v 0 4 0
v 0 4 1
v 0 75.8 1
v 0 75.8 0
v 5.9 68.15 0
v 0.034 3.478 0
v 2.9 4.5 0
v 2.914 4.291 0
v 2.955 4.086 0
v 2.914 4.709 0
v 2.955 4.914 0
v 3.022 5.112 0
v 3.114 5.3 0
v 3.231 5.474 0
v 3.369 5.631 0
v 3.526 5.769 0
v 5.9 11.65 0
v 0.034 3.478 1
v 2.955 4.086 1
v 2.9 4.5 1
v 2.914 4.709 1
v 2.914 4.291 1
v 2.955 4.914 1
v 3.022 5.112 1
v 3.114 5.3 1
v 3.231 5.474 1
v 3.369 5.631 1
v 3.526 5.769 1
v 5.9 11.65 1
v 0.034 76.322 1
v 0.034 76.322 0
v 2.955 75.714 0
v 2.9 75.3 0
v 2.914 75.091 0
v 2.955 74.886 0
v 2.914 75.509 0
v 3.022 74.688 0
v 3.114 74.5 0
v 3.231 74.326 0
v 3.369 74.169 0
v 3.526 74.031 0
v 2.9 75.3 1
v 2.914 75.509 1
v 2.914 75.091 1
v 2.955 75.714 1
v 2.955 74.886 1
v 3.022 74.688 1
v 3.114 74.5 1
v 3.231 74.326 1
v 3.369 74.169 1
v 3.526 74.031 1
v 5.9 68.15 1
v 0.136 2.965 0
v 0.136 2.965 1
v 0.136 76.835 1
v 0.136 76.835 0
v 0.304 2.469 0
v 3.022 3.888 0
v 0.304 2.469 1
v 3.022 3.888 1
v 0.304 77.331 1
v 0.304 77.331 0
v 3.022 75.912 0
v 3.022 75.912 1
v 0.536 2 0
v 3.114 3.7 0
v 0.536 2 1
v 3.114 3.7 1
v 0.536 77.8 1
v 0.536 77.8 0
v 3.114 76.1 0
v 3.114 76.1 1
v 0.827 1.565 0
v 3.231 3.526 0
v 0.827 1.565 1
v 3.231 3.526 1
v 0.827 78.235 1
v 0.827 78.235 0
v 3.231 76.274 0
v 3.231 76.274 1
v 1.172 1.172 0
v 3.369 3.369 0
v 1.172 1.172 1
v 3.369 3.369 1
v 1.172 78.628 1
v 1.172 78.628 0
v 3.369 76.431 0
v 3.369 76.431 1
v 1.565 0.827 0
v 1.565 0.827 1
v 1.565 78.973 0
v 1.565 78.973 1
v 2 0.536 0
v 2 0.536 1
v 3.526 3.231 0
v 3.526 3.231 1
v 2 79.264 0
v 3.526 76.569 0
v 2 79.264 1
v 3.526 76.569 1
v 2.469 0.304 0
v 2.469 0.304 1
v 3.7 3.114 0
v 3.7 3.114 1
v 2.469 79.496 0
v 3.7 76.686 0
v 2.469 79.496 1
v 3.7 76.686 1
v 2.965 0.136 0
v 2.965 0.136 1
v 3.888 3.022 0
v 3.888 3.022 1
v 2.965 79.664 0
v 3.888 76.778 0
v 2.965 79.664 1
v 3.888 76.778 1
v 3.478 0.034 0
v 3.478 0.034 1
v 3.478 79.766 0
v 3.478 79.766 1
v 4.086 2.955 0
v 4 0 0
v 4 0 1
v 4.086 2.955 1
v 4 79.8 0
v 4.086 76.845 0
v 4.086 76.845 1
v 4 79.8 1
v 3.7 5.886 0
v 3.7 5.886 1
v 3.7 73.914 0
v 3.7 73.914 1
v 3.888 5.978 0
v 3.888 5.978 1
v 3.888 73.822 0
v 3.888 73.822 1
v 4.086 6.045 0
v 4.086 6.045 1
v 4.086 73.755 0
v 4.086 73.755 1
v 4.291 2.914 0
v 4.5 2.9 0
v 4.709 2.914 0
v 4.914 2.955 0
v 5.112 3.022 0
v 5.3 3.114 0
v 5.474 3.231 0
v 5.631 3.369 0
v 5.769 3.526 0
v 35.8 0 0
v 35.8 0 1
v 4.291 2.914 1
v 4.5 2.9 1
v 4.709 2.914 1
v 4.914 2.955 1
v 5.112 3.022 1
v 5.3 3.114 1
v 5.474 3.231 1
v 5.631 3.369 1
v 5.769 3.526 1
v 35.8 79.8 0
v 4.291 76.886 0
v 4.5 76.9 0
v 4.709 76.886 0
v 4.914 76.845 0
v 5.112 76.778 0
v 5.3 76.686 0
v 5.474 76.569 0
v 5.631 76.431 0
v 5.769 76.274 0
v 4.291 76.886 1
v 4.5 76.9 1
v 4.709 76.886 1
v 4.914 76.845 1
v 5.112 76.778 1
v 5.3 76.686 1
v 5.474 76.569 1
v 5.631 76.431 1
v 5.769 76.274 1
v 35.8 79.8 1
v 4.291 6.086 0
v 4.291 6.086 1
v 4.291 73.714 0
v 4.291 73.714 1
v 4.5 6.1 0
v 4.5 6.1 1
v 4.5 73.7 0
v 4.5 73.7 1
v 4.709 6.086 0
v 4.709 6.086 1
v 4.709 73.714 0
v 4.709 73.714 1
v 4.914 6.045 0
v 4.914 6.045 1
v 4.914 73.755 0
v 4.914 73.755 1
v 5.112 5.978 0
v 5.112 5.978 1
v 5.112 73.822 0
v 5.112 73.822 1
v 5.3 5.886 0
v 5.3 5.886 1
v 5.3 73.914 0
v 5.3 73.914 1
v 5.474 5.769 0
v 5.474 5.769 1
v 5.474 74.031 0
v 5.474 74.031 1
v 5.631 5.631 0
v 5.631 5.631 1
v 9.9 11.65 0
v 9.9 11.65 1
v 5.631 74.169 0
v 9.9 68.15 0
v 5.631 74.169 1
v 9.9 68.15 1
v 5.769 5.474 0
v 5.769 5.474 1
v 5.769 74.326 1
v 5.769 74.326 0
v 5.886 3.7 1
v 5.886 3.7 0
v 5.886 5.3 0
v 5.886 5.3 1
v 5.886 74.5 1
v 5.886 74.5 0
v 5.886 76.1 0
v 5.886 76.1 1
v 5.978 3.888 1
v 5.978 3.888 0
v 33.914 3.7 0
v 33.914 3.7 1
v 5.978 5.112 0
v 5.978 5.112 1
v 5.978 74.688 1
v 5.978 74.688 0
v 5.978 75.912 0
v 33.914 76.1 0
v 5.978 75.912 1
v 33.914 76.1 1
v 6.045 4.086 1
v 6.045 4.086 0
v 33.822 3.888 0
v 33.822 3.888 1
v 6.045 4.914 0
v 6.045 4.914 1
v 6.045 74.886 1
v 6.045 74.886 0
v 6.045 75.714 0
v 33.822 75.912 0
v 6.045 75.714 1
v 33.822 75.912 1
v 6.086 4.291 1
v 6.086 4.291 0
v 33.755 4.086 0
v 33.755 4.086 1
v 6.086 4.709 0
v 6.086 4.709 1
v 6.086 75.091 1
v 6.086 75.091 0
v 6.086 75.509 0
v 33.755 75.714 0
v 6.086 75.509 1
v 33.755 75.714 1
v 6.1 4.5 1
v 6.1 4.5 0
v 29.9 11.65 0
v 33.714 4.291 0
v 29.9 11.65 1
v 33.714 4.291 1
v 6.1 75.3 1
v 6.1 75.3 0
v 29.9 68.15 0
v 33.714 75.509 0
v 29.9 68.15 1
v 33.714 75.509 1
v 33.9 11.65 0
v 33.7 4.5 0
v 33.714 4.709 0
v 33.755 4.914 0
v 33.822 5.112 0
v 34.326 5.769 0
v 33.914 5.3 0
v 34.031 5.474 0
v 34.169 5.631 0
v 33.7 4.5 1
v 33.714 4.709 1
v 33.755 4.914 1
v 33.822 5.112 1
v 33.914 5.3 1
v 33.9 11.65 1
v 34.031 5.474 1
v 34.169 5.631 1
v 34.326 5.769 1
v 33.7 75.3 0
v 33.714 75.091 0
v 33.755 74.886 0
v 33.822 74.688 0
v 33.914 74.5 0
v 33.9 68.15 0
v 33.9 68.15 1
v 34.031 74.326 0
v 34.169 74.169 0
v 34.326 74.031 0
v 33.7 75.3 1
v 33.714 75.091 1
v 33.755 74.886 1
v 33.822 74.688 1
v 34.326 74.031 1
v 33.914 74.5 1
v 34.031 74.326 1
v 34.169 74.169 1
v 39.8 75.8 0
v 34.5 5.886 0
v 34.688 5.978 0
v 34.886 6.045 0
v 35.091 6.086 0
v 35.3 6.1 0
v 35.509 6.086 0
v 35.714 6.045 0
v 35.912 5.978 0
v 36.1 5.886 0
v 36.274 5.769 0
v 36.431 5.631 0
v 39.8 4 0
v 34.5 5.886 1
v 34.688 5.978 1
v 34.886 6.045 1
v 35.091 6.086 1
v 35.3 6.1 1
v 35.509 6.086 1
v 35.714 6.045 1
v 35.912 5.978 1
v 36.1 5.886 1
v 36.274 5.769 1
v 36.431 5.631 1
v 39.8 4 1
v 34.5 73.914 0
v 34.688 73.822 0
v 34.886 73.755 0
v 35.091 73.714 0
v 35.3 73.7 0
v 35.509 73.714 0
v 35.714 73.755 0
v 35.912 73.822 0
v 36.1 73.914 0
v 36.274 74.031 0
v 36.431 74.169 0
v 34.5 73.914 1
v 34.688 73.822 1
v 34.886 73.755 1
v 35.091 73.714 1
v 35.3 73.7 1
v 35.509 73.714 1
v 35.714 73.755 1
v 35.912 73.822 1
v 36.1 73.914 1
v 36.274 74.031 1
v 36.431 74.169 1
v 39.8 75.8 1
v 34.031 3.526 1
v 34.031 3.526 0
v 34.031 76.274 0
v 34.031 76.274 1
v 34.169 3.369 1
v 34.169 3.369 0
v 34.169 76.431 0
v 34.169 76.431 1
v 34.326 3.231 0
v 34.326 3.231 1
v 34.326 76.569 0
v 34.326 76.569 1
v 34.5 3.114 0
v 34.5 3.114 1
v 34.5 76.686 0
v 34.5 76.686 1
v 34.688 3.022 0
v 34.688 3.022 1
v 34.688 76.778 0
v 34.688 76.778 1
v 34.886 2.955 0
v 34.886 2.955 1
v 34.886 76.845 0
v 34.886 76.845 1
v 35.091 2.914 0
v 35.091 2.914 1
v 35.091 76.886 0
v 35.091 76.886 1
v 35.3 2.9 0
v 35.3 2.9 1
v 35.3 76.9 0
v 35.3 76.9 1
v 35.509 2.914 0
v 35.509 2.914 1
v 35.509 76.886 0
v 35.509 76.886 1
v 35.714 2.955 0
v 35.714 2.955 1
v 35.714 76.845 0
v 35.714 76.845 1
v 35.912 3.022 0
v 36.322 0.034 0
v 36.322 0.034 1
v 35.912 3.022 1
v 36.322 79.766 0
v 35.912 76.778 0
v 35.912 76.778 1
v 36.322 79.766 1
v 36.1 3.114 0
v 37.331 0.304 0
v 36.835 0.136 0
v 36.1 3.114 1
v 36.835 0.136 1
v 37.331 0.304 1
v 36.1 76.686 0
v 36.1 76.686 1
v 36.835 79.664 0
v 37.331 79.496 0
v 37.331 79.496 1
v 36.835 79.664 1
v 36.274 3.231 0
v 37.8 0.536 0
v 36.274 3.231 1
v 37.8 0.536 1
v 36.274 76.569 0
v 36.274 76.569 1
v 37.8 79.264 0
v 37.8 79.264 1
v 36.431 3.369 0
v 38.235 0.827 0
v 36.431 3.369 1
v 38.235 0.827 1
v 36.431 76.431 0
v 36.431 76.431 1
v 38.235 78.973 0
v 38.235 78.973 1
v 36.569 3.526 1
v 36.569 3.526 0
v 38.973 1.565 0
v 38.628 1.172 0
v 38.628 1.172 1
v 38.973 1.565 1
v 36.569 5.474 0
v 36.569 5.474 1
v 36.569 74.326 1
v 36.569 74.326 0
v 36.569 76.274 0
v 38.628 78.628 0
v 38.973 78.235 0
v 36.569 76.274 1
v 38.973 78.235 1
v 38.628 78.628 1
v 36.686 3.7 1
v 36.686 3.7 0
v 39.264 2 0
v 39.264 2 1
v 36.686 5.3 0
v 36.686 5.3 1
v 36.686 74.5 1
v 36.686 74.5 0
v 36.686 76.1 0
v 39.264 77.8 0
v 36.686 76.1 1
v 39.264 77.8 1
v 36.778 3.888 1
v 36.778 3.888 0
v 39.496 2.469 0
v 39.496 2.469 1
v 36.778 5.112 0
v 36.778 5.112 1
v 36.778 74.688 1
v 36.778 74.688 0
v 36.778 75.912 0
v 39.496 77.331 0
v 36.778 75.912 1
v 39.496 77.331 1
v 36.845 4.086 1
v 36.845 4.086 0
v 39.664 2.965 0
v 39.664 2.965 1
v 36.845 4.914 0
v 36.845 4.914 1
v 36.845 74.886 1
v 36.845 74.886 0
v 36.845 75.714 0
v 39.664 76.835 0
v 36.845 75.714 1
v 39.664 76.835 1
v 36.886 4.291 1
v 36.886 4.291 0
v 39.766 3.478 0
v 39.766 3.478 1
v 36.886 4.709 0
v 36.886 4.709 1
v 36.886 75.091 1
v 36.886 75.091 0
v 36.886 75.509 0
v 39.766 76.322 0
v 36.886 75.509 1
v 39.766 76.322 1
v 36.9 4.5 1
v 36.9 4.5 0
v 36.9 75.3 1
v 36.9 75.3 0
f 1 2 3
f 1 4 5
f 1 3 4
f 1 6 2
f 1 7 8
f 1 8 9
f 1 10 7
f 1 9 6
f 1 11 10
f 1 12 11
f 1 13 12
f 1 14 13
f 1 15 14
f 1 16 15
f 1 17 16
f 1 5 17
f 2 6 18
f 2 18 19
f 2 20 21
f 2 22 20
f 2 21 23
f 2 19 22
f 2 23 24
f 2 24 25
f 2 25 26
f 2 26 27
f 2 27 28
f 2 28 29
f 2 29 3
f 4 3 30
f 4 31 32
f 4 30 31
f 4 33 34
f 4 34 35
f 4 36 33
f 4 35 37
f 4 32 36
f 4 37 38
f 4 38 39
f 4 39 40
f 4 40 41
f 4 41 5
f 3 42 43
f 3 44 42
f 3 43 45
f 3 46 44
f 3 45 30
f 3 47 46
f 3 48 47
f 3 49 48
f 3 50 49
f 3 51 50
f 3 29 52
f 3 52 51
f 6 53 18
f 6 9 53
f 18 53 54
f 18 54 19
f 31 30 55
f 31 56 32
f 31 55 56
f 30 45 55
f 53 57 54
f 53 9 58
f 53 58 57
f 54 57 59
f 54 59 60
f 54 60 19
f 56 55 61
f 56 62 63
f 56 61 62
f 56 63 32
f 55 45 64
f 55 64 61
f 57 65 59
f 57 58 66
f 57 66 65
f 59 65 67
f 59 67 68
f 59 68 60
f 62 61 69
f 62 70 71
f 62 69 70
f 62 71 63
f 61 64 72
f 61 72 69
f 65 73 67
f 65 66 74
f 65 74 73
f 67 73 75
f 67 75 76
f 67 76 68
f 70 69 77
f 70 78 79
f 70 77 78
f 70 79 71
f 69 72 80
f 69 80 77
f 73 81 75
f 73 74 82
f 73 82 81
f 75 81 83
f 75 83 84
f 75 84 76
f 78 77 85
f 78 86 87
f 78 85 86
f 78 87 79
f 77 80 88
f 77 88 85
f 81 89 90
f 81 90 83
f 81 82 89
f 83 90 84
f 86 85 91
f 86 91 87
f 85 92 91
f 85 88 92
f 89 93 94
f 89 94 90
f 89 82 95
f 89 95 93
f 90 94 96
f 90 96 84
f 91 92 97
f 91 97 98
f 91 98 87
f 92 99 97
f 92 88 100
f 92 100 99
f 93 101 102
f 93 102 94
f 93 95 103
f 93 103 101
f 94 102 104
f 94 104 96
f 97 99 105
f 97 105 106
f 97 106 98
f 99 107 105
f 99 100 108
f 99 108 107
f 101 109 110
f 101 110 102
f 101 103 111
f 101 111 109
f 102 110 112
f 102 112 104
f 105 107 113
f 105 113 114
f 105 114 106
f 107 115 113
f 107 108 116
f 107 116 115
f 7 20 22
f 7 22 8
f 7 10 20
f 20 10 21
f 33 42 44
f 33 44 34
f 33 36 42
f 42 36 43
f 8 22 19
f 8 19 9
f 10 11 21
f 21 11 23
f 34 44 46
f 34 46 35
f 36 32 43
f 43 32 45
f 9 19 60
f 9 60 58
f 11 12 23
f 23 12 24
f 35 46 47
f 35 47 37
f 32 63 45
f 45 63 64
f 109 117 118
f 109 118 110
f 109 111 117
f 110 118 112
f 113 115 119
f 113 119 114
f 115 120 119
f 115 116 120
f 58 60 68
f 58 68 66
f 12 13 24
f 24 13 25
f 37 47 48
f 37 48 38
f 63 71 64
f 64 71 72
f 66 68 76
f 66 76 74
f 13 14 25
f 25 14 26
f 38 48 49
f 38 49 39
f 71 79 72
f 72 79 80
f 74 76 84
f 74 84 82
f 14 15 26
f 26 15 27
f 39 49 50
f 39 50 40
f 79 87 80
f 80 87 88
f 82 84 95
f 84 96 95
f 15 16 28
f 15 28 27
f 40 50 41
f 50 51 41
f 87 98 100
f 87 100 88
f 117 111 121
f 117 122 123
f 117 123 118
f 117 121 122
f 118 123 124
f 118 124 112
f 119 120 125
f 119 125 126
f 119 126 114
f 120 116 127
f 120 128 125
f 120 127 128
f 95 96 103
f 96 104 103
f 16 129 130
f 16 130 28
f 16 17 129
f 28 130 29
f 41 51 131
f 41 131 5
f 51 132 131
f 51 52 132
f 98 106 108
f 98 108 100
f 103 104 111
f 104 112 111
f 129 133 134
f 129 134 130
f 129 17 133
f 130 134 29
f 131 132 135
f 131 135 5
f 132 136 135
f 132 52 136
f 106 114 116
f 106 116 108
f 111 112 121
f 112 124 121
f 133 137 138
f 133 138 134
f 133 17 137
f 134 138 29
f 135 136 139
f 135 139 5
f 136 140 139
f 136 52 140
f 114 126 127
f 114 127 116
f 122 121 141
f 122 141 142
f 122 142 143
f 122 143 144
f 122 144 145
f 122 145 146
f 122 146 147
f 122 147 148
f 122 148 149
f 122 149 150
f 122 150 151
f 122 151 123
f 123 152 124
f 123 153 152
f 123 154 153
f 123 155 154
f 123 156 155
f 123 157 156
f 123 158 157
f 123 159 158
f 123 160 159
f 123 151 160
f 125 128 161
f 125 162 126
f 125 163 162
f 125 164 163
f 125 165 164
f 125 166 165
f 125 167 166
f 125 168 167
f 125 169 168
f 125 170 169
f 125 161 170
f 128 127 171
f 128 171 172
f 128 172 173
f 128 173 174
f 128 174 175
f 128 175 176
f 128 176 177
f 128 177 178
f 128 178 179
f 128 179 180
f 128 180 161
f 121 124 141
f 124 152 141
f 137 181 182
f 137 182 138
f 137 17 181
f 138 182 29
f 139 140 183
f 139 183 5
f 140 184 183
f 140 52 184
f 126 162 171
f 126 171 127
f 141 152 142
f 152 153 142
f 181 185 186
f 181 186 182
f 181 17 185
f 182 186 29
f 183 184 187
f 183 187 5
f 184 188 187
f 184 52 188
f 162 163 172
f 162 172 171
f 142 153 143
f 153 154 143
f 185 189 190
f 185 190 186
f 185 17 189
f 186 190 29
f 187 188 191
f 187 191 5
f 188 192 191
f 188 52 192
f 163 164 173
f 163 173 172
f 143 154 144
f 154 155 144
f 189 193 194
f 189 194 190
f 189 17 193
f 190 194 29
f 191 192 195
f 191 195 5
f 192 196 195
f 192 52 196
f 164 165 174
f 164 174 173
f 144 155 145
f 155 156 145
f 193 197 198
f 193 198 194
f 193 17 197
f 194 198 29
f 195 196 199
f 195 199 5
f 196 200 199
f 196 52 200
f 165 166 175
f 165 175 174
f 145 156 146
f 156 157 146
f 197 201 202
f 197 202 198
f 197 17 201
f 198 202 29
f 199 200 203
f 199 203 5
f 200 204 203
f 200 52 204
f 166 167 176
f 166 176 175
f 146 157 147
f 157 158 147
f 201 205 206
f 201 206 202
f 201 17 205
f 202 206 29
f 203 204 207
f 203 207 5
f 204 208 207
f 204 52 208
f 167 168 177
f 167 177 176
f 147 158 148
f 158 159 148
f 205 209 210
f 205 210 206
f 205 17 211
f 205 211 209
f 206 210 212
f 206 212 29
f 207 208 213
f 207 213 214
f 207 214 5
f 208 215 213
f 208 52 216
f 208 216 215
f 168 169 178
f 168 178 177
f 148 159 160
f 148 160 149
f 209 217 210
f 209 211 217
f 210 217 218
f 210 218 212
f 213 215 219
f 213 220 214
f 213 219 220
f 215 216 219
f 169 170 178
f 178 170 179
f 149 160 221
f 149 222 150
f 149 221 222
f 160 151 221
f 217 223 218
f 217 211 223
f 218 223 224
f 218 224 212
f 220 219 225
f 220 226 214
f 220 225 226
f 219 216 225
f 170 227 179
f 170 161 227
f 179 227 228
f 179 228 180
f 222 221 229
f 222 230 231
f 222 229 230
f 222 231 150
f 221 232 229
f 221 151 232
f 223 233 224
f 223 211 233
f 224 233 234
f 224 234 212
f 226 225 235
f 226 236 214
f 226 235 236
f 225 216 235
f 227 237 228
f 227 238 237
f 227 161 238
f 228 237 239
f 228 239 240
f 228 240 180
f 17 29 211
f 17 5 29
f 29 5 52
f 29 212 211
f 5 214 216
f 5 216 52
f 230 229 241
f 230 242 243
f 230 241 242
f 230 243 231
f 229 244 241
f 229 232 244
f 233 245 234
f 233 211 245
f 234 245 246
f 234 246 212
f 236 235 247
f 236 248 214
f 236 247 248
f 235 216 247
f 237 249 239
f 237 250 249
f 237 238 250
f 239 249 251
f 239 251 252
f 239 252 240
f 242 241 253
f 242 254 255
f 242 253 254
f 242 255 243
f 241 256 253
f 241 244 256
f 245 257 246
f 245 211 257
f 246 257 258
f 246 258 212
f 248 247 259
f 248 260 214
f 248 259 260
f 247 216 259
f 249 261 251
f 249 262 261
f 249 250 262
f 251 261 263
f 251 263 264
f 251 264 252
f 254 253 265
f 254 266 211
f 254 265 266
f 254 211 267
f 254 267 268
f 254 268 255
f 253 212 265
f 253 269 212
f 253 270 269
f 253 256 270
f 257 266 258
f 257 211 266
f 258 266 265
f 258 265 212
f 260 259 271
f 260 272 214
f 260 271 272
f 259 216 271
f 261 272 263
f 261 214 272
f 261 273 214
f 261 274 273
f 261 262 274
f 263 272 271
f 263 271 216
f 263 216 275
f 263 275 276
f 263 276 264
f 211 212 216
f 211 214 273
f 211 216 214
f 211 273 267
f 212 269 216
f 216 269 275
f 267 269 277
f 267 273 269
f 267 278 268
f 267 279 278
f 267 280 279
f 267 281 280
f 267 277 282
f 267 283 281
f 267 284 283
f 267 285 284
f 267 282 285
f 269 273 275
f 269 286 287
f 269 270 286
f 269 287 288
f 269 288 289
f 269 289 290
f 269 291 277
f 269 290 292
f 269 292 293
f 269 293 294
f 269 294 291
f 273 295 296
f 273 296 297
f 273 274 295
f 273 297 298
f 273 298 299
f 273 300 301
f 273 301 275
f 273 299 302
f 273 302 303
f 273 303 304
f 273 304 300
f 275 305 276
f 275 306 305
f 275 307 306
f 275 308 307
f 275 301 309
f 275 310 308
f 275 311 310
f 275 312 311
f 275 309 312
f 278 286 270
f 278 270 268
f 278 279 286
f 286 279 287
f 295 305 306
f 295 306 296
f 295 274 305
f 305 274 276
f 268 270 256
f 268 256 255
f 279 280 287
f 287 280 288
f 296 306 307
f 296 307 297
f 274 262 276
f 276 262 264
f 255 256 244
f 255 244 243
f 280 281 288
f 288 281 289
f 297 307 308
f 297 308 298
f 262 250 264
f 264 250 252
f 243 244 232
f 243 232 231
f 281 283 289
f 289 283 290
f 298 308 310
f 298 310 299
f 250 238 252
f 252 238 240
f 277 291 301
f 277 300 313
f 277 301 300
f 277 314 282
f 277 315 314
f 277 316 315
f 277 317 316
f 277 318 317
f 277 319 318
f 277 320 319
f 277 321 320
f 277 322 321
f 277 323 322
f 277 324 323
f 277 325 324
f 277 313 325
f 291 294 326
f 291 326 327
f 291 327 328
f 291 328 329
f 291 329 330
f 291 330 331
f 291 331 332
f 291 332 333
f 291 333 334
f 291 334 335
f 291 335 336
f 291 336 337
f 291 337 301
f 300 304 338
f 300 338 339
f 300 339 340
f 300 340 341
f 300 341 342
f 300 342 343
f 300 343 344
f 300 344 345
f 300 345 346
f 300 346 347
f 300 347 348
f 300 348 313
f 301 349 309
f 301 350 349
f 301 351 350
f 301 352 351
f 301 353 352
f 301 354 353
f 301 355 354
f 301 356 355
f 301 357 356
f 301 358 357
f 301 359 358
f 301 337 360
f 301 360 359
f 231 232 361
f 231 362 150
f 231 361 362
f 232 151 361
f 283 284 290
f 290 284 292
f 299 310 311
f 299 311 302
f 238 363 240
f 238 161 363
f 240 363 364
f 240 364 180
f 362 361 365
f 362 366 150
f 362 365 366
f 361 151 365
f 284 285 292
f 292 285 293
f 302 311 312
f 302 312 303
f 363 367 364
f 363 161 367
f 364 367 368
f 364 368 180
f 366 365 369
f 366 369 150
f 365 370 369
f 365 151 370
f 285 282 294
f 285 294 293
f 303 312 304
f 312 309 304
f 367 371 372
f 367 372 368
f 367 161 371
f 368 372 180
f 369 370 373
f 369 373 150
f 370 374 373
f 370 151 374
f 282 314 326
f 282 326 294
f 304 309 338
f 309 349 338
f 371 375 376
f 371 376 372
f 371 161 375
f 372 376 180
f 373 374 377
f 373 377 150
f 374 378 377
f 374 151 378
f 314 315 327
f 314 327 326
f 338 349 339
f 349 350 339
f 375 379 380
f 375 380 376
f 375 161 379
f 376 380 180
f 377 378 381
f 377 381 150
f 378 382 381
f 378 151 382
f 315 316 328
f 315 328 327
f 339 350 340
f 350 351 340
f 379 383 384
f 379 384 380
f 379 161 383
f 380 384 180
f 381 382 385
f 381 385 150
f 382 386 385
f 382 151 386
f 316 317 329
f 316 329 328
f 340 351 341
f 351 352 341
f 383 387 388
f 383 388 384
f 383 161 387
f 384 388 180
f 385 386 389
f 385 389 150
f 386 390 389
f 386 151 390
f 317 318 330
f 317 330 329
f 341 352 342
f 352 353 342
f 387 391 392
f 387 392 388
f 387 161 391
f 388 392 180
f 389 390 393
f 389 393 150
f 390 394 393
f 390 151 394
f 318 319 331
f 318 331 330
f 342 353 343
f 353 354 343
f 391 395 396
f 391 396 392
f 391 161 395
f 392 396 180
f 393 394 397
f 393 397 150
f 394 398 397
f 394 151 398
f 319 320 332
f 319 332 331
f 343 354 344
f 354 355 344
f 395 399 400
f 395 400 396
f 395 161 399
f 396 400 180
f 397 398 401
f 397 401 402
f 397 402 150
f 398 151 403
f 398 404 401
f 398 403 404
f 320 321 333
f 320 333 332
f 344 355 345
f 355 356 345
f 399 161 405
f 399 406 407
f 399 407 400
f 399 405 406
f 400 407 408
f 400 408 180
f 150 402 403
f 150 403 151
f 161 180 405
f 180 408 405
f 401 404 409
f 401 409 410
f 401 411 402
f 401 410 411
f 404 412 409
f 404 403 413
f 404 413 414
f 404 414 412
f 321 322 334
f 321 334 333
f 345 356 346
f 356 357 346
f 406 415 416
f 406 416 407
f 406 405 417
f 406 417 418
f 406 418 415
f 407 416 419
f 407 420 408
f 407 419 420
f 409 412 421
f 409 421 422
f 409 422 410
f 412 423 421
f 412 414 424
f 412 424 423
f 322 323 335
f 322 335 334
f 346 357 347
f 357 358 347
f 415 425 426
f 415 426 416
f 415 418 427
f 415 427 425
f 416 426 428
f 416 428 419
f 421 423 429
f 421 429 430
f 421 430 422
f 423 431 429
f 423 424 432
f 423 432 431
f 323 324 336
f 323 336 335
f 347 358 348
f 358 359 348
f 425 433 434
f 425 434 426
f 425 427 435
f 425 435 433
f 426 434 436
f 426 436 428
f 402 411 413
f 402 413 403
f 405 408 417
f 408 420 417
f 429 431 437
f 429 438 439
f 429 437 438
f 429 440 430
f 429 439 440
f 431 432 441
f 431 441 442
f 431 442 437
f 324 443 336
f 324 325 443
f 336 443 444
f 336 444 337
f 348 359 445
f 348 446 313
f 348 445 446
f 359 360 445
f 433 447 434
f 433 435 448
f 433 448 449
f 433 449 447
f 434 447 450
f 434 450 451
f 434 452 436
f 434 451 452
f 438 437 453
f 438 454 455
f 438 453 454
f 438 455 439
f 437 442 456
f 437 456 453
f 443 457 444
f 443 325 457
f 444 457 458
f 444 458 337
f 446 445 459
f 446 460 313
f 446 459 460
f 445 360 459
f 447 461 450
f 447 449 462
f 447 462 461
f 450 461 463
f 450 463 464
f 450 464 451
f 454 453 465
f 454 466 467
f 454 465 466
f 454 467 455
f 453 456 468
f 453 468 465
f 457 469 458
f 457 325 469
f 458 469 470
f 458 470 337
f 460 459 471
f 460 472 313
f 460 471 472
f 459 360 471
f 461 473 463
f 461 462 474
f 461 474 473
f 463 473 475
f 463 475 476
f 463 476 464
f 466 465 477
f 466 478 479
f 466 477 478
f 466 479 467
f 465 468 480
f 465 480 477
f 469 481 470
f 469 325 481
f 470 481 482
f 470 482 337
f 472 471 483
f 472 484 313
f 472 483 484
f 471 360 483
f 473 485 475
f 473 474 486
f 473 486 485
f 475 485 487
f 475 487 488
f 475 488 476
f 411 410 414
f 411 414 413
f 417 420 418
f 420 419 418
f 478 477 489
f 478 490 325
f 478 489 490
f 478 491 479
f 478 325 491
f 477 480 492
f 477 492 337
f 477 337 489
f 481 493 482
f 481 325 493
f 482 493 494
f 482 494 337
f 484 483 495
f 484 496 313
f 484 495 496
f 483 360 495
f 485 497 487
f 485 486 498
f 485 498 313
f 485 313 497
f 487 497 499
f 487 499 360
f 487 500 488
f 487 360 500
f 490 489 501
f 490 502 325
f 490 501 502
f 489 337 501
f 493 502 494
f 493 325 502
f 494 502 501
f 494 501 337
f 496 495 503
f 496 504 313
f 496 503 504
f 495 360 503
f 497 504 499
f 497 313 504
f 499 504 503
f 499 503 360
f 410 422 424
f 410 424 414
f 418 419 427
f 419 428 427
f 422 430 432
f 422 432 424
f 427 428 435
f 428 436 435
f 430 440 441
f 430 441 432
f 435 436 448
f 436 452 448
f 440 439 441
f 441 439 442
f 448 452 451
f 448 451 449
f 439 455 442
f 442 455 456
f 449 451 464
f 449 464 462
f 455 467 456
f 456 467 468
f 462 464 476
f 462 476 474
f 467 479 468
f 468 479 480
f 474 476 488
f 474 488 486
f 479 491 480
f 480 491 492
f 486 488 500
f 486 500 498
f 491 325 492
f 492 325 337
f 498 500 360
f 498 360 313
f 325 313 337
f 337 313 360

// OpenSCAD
// Dilder Case Separator Sheet (outer) — thin divider matching base outer footprint
//
// Same as the inner separator but sized to the full outer enclosure dimensions
// with the base's 4mm corner radius. Two long rectangular slots and screw holes.
//
// Export:
//   openscad -o case-separator-outer.3mf case-separator-outer.scad

$fn = 48;

// ---- Board (Olimex ESP32-S3-DevKit-Lipo) ----
board_len      = 56;
board_wid      = 28;
antenna_proj   = 6;
header_gap     = 22;
header_slot_len = 56.5;
header_slot_wid = 4;

// ---- Waveshare 2.13" display ----
disp_len       = 65;
disp_wid       = 30;

// ---- 1000 mAh battery ----
bat_len        = 52;
bat_wid        = 35;

// ---- Enclosure geometry ----
wall_thk       = 2;
plate_thk      = 1;        // thin separator sheet
pillar         = 5;
slop           = 0.4;

screw_clr      = 3.2;

// ---- Rounding ----
case_corner_r  = 4;        // matches base outer corners

// ---- XY layout ----
inner_wid      = max(board_wid, disp_wid, bat_wid) + 2 * slop;
inner_len      = max(board_len + antenna_proj, disp_len + 2 * pillar, bat_len) + 2 * slop;
outer_wid      = inner_wid + 2 * wall_thk;
outer_len      = inner_len + 2 * wall_thk;

pillar_xy = [
    [wall_thk,                             wall_thk                            ],
    [outer_wid - wall_thk - pillar,        wall_thk                            ],
    [wall_thk,                             outer_len - wall_thk - pillar       ],
    [outer_wid - wall_thk - pillar,        outer_len - wall_thk - pillar       ],
];

board_x        = (outer_wid - board_wid) / 2;


// ============== SHARED ==============

module rounded_v_box(w, l, h, r, fn = 48) {
    hull() {
        for (x = [r, w - r])
            for (y = [r, l - r])
                translate([x, y, 0])
                    cylinder(r = r, h = h, $fn = fn);
    }
}


// ============== CASE SEPARATOR (OUTER) ==============

module case_separator_outer() {
    header_slot_x_left  = board_x - (header_slot_wid + (board_wid - header_gap) / 2 - header_slot_wid);
    // Simpler: match the middle plate slot positions relative to full outer sheet
    hdr_strip = (board_wid - header_gap) / 2;
    slot_x_left  = board_x;
    slot_x_right = board_x + board_wid - header_slot_wid;
    slot_y_start = (outer_len - header_slot_len) / 2;

    difference() {
        // Full outer footprint with base corner radius
        rounded_v_box(outer_wid, outer_len, plate_thk, case_corner_r);

        // Left rectangular slot
        translate([slot_x_left, slot_y_start, -0.1])
            cube([header_slot_wid, header_slot_len, plate_thk + 0.2]);

        // Right rectangular slot
        translate([slot_x_right, slot_y_start, -0.1])
            cube([header_slot_wid, header_slot_len, plate_thk + 0.2]);

        // Screw clearance holes
        for (p = pillar_xy)
            translate([p[0] + pillar/2, p[1] + pillar/2, -0.1])
                cylinder(h = plate_thk + 0.2, d = screw_clr);
    }
}

case_separator_outer();
